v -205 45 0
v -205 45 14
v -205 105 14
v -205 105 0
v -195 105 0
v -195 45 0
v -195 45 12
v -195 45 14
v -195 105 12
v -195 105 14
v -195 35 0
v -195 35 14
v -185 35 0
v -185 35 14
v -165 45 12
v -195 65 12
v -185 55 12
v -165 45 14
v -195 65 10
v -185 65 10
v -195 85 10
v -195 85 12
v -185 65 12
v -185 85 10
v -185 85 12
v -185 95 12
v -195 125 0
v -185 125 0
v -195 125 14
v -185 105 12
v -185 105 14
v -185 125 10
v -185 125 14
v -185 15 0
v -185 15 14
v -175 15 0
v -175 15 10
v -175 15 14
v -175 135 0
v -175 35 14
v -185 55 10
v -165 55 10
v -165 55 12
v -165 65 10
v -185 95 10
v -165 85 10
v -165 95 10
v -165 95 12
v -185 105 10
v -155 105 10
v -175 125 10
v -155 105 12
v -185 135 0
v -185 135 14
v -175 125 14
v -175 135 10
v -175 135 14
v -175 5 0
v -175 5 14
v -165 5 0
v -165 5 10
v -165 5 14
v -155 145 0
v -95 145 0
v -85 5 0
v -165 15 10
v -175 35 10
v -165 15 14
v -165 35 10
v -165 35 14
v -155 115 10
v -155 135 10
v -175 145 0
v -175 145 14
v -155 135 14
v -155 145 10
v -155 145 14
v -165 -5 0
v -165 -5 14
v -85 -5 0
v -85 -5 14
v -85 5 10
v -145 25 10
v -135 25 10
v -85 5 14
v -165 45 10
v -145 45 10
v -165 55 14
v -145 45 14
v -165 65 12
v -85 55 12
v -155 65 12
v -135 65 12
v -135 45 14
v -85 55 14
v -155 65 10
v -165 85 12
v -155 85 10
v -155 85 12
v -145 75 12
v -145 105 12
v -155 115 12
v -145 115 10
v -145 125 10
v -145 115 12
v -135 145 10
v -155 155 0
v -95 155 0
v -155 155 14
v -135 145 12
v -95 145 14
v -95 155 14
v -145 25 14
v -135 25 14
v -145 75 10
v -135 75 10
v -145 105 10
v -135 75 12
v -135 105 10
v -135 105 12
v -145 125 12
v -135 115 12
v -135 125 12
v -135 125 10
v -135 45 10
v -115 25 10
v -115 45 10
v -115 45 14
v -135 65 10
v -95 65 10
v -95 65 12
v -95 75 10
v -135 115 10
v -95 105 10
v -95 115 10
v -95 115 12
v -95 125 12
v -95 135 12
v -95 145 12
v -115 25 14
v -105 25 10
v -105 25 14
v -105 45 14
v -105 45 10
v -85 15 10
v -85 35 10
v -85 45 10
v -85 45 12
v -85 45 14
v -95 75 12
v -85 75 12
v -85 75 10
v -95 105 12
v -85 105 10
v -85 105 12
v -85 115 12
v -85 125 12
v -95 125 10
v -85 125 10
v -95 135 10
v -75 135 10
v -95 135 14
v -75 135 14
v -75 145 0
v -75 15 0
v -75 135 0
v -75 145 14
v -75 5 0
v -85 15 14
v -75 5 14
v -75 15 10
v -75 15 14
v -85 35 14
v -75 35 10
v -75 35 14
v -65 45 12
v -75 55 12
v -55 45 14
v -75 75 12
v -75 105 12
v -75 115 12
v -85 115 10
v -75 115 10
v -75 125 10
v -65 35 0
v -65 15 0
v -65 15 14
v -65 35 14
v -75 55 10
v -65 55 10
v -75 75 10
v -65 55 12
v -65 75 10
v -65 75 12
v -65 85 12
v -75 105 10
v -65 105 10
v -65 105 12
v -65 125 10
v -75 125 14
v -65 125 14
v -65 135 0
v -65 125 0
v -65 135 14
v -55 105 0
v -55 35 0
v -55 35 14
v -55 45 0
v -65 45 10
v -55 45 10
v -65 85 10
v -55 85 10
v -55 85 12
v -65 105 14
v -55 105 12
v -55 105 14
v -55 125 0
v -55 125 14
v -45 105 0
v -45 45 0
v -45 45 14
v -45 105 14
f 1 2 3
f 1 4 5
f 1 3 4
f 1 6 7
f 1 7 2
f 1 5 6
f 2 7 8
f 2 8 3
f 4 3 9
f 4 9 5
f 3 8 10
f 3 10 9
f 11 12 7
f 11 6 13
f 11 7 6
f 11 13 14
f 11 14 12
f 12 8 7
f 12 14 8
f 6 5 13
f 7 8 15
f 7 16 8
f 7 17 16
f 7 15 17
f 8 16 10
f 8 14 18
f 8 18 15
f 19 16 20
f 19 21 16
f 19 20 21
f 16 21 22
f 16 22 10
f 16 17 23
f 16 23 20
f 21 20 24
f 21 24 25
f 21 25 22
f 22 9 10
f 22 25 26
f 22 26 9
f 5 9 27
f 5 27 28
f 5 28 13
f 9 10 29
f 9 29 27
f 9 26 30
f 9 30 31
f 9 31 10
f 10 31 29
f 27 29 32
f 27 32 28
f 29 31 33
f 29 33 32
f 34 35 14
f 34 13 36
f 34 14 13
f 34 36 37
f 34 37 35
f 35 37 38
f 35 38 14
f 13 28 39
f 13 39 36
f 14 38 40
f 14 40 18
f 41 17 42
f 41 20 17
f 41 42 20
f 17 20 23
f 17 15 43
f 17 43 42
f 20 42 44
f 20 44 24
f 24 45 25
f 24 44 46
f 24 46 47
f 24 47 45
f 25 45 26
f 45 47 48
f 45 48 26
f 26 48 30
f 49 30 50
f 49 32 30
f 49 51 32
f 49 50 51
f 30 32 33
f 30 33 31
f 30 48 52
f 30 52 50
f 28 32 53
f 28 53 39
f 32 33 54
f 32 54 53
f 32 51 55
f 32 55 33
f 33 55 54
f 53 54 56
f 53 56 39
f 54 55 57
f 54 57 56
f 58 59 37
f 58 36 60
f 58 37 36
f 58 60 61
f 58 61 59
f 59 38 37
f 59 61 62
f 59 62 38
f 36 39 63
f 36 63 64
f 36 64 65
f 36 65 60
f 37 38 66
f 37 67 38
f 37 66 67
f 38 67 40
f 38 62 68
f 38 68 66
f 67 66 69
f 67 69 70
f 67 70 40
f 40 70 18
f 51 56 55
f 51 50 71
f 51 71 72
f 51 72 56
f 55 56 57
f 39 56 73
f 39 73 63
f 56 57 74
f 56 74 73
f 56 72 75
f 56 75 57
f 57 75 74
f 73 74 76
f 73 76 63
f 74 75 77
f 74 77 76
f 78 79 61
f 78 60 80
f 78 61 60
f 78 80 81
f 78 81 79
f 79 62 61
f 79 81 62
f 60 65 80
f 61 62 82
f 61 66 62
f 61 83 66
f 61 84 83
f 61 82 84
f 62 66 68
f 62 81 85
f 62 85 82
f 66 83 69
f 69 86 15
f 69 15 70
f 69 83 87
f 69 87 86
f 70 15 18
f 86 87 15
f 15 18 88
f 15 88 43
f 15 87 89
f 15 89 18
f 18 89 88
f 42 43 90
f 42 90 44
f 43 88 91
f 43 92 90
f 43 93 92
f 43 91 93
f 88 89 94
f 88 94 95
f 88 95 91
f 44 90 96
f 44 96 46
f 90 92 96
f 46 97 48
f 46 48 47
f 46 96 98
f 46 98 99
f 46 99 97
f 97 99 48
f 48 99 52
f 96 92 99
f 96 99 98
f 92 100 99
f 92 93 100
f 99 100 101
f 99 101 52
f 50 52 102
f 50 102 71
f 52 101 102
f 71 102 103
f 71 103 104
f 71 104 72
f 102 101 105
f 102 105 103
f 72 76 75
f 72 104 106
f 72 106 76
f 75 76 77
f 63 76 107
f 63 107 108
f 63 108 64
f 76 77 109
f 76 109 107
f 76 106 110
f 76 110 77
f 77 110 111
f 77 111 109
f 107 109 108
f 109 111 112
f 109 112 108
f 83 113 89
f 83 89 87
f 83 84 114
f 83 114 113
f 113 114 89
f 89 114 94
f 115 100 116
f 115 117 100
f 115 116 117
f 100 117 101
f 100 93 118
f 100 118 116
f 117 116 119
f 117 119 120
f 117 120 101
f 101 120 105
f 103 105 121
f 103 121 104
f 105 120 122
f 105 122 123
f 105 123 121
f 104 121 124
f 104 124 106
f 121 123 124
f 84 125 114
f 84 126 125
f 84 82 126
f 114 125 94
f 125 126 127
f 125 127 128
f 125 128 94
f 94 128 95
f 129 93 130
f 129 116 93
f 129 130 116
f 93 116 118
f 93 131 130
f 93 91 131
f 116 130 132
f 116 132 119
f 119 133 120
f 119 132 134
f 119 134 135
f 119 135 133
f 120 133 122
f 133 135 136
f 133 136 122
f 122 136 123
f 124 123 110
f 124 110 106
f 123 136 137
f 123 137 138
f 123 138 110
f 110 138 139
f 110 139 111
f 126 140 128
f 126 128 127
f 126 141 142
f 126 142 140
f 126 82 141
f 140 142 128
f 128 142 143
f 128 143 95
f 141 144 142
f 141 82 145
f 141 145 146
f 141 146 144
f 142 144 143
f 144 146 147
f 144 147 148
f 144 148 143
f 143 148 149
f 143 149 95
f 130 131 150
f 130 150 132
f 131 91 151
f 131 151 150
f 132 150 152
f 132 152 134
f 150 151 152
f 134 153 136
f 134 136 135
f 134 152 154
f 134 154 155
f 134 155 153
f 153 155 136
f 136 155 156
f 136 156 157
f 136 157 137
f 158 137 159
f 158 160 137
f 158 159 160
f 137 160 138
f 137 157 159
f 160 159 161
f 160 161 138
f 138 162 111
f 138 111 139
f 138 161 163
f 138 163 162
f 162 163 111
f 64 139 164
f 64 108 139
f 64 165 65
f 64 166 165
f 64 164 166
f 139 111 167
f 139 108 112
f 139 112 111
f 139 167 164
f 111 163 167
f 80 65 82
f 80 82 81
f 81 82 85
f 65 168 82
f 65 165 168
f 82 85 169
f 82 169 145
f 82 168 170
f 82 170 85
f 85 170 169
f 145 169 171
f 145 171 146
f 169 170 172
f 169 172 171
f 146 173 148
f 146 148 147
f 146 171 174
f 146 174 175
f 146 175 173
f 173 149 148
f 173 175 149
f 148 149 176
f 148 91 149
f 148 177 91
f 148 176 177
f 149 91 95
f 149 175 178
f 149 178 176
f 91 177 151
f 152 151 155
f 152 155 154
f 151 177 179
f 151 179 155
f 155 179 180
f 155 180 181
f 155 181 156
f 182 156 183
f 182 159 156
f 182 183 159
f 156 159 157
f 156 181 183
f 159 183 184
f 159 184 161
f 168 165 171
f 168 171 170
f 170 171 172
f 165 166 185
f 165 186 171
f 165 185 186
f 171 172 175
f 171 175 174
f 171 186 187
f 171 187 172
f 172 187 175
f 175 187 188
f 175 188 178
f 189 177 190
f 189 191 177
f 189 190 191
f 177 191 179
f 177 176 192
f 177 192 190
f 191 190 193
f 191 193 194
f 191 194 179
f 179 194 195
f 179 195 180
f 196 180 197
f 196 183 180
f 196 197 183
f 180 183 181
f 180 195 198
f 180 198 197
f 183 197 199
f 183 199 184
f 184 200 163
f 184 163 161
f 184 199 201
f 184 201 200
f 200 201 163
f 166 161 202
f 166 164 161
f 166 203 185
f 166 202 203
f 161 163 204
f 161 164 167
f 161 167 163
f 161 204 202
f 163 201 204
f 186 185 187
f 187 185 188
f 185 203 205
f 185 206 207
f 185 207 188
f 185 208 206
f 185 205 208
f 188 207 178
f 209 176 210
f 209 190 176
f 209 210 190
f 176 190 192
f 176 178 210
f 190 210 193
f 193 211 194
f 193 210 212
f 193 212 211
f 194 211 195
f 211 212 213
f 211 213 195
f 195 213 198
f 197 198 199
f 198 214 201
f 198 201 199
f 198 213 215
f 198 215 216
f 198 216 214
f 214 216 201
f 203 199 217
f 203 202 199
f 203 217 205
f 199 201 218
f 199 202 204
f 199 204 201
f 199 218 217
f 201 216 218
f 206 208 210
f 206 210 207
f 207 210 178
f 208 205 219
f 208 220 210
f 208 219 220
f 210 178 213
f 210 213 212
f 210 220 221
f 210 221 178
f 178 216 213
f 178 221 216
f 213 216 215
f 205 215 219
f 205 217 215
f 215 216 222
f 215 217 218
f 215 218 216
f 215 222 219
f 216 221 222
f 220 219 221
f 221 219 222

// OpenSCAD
// file: pixel_canvas.scad
module pixel(x, y, pixel_color, pixel_height = 1.0) {
    color(pixel_color) {
	linear_extrude(height = pixel_height) {
	    translate([x, y]) {
		square(size = 1, center=true);
	    }
	}
    }
}

module pixel_canvas(canvas_size, pixel_count, pixels, color_palette, color_heights) {
    pixel_size = canvas_size / pixel_count;
    scale([pixel_size, pixel_size, 1.0]) {
	for (coord = pixels) {
	    x = coord[0];
	    y = coord[1];
	    color_index = coord[2];
	    pixel(x=x, y=y, pixel_color=color_palette[color_index], pixel_height=color_heights[color_index] * pixel_size);
	}
    }
}
// main file
use <pixel_canvas.scad>

COLOR_PALETTE = [
  "white",
  "red",
  "black",
];

COLOR_HEIGHTS = [
  1.0,
  1.2,
  1.4,
];

PIXELS = [
	  [-15, 15, 2],  [-14, 15, 2], [-13, 15, 2], [-12, 15, 2],  [-11, 15, 2], [-10, 15, 2],
	  [-17, 14, 2],  [-16, 14, 2], [-15, 14, 0], [-14, 14, 0],  [-13, 14, 1], [-12, 14, 1], [-11, 14, 1], [-10, 14, 1], [-9, 14, 2], [-8, 14, 2],
	  [-18, 13, 2], [-17, 13, 0], [-16, 13, 0], [-15, 13, 0], [-14, 13, 0], [-13, 13, 1], [-12, 13, 1], [-11, 13, 1], [-10, 13, 1], [-9, 13, 0], [-8, 13, 0], [-7, 13, 2],
	  [-19, 12, 2], [-18, 12, 0], [-17, 12, 0], [-16, 12, 0], [-15, 12, 0], [-14, 12, 1], [-13, 12, 1], [-12, 12, 1], [-11, 12, 1], [-10, 12, 1], [-9, 12, 1], [-8, 12, 0], [-7, 12, 0], [-6, 12, 2],
	  [-19, 11, 2], [-18, 11, 0], [-17, 11, 0], [-16, 11, 0], [-15, 11, 1], [-14, 11, 1], [-13, 11, 0], [-12, 11, 0], [-11, 11, 0], [-10, 11, 0], [-9, 11, 1], [-8, 11, 1], [-7, 11, 0], [-6, 11, 2],
	  [-20, 10, 2], [-19, 10, 1], [-18, 10, 1], [-17, 10, 1], [-16, 10, 1], [-15, 10, 1], [-14, 10, 0], [-13, 10, 0], [-12, 10, 0], [-11, 10, 0], [-10, 10, 0], [-9, 10, 0], [-8, 10, 1], [-7, 10, 1], [-6, 10, 1], [-5, 10, 2],
	  [-20, 9, 2], [-19, 9, 1], [-18, 9, 0], [-17, 9, 0], [-16, 9, 1], [-15, 9, 1], [-14, 9, 0], [-13, 9, 0], [-12, 9, 0], [-11, 9, 0], [-10, 9, 0], [-9, 9, 0], [-8, 9, 1], [-7, 9, 1], [-6, 9, 1], [-5, 9, 2],
	  [-20, 8, 2], [-19, 8, 0], [-18, 8, 0], [-17, 8, 0], [-16, 8, 0], [-15, 8, 1], [-14, 8, 0], [-13, 8, 0], [-12, 8, 0], [-11, 8, 0], [-10, 8, 0], [-9, 8, 0], [-8, 8, 1], [-7, 8, 1], [-6, 8, 0], [-5, 8, 2],
	  [-20, 7, 2], [-19, 7, 0], [-18, 7, 0], [-17, 7, 0], [-16, 7, 0], [-15, 7, 1], [-14, 7, 1], [-13, 7, 0], [-12, 7, 0], [-11, 7, 0], [-10, 7, 0], [-9, 7, 1], [-8, 7, 1], [-7, 7, 0], [-6, 7, 0], [-5, 7, 2],
	  [-20, 6, 2], [-19, 6, 1], [-18, 6, 0], [-17, 6, 0], [-16, 6, 1], [-15, 6, 1], [-14, 6, 1], [-13, 6, 1], [-12, 6, 1], [-11, 6, 1], [-10, 6, 1], [-9, 6, 1], [-8, 6, 1], [-7, 6, 0], [-6, 6, 0], [-5, 6, 2],
	  [-20, 5, 2], [-19, 5, 1], [-18, 5, 1], [-17, 5, 1], [-16, 5, 2], [-15, 5, 2], [-14, 5, 2], [-13, 5, 2], [-12, 5, 2], [-11, 5, 2], [-10, 5, 2], [-9, 5, 2], [-8, 5, 1], [-7, 5, 1], [-6, 5, 0], [-5, 5, 2],
	  [-19, 4, 2], [-18, 4, 2], [-17, 4, 2], [-16, 4, 0], [-15, 4, 0], [-14, 4, 2], [-13, 4, 0], [-12, 4, 0], [-11, 4, 2], [-10, 4, 0], [-9, 4, 0], [-8, 4, 2], [-7, 4, 2], [-6, 4, 2],
	  [-18, 3, 2], [-17, 3, 0], [-16, 3, 0], [-15, 3, 0], [-14, 3, 2], [-13, 3, 0], [-12, 3, 0], [-11, 3, 2], [-10, 3, 0], [-9, 3, 0], [-8, 3, 0], [-7, 3, 2],
	  [-18, 2, 2], [-17, 2, 0], [-16, 2, 0], [-15, 2, 0], [-14, 2, 0], [-13, 2, 0], [-12, 2, 0], [-11, 2, 0], [-10, 2, 0], [-9, 2, 0], [-8, 2, 0], [-7, 2, 2],
	  [-17, 1, 2], [-16, 1, 0], [-15, 1, 0], [-14, 1, 0], [-13, 1, 0], [-12, 1, 0], [-11, 1, 0], [-10, 1, 0], [-9, 1, 0], [-8, 1, 2],
	  [-16, 0, 2], [-15, 0, 2], [-14, 0, 2], [-13, 0, 2], [-12, 0, 2], [-11, 0, 2], [-10, 0, 2], [-9, 0, 2],
];

pixel_canvas(canvas_size=170, pixel_count=17, pixels=PIXELS, color_palette=COLOR_PALETTE, color_heights=COLOR_HEIGHTS);
